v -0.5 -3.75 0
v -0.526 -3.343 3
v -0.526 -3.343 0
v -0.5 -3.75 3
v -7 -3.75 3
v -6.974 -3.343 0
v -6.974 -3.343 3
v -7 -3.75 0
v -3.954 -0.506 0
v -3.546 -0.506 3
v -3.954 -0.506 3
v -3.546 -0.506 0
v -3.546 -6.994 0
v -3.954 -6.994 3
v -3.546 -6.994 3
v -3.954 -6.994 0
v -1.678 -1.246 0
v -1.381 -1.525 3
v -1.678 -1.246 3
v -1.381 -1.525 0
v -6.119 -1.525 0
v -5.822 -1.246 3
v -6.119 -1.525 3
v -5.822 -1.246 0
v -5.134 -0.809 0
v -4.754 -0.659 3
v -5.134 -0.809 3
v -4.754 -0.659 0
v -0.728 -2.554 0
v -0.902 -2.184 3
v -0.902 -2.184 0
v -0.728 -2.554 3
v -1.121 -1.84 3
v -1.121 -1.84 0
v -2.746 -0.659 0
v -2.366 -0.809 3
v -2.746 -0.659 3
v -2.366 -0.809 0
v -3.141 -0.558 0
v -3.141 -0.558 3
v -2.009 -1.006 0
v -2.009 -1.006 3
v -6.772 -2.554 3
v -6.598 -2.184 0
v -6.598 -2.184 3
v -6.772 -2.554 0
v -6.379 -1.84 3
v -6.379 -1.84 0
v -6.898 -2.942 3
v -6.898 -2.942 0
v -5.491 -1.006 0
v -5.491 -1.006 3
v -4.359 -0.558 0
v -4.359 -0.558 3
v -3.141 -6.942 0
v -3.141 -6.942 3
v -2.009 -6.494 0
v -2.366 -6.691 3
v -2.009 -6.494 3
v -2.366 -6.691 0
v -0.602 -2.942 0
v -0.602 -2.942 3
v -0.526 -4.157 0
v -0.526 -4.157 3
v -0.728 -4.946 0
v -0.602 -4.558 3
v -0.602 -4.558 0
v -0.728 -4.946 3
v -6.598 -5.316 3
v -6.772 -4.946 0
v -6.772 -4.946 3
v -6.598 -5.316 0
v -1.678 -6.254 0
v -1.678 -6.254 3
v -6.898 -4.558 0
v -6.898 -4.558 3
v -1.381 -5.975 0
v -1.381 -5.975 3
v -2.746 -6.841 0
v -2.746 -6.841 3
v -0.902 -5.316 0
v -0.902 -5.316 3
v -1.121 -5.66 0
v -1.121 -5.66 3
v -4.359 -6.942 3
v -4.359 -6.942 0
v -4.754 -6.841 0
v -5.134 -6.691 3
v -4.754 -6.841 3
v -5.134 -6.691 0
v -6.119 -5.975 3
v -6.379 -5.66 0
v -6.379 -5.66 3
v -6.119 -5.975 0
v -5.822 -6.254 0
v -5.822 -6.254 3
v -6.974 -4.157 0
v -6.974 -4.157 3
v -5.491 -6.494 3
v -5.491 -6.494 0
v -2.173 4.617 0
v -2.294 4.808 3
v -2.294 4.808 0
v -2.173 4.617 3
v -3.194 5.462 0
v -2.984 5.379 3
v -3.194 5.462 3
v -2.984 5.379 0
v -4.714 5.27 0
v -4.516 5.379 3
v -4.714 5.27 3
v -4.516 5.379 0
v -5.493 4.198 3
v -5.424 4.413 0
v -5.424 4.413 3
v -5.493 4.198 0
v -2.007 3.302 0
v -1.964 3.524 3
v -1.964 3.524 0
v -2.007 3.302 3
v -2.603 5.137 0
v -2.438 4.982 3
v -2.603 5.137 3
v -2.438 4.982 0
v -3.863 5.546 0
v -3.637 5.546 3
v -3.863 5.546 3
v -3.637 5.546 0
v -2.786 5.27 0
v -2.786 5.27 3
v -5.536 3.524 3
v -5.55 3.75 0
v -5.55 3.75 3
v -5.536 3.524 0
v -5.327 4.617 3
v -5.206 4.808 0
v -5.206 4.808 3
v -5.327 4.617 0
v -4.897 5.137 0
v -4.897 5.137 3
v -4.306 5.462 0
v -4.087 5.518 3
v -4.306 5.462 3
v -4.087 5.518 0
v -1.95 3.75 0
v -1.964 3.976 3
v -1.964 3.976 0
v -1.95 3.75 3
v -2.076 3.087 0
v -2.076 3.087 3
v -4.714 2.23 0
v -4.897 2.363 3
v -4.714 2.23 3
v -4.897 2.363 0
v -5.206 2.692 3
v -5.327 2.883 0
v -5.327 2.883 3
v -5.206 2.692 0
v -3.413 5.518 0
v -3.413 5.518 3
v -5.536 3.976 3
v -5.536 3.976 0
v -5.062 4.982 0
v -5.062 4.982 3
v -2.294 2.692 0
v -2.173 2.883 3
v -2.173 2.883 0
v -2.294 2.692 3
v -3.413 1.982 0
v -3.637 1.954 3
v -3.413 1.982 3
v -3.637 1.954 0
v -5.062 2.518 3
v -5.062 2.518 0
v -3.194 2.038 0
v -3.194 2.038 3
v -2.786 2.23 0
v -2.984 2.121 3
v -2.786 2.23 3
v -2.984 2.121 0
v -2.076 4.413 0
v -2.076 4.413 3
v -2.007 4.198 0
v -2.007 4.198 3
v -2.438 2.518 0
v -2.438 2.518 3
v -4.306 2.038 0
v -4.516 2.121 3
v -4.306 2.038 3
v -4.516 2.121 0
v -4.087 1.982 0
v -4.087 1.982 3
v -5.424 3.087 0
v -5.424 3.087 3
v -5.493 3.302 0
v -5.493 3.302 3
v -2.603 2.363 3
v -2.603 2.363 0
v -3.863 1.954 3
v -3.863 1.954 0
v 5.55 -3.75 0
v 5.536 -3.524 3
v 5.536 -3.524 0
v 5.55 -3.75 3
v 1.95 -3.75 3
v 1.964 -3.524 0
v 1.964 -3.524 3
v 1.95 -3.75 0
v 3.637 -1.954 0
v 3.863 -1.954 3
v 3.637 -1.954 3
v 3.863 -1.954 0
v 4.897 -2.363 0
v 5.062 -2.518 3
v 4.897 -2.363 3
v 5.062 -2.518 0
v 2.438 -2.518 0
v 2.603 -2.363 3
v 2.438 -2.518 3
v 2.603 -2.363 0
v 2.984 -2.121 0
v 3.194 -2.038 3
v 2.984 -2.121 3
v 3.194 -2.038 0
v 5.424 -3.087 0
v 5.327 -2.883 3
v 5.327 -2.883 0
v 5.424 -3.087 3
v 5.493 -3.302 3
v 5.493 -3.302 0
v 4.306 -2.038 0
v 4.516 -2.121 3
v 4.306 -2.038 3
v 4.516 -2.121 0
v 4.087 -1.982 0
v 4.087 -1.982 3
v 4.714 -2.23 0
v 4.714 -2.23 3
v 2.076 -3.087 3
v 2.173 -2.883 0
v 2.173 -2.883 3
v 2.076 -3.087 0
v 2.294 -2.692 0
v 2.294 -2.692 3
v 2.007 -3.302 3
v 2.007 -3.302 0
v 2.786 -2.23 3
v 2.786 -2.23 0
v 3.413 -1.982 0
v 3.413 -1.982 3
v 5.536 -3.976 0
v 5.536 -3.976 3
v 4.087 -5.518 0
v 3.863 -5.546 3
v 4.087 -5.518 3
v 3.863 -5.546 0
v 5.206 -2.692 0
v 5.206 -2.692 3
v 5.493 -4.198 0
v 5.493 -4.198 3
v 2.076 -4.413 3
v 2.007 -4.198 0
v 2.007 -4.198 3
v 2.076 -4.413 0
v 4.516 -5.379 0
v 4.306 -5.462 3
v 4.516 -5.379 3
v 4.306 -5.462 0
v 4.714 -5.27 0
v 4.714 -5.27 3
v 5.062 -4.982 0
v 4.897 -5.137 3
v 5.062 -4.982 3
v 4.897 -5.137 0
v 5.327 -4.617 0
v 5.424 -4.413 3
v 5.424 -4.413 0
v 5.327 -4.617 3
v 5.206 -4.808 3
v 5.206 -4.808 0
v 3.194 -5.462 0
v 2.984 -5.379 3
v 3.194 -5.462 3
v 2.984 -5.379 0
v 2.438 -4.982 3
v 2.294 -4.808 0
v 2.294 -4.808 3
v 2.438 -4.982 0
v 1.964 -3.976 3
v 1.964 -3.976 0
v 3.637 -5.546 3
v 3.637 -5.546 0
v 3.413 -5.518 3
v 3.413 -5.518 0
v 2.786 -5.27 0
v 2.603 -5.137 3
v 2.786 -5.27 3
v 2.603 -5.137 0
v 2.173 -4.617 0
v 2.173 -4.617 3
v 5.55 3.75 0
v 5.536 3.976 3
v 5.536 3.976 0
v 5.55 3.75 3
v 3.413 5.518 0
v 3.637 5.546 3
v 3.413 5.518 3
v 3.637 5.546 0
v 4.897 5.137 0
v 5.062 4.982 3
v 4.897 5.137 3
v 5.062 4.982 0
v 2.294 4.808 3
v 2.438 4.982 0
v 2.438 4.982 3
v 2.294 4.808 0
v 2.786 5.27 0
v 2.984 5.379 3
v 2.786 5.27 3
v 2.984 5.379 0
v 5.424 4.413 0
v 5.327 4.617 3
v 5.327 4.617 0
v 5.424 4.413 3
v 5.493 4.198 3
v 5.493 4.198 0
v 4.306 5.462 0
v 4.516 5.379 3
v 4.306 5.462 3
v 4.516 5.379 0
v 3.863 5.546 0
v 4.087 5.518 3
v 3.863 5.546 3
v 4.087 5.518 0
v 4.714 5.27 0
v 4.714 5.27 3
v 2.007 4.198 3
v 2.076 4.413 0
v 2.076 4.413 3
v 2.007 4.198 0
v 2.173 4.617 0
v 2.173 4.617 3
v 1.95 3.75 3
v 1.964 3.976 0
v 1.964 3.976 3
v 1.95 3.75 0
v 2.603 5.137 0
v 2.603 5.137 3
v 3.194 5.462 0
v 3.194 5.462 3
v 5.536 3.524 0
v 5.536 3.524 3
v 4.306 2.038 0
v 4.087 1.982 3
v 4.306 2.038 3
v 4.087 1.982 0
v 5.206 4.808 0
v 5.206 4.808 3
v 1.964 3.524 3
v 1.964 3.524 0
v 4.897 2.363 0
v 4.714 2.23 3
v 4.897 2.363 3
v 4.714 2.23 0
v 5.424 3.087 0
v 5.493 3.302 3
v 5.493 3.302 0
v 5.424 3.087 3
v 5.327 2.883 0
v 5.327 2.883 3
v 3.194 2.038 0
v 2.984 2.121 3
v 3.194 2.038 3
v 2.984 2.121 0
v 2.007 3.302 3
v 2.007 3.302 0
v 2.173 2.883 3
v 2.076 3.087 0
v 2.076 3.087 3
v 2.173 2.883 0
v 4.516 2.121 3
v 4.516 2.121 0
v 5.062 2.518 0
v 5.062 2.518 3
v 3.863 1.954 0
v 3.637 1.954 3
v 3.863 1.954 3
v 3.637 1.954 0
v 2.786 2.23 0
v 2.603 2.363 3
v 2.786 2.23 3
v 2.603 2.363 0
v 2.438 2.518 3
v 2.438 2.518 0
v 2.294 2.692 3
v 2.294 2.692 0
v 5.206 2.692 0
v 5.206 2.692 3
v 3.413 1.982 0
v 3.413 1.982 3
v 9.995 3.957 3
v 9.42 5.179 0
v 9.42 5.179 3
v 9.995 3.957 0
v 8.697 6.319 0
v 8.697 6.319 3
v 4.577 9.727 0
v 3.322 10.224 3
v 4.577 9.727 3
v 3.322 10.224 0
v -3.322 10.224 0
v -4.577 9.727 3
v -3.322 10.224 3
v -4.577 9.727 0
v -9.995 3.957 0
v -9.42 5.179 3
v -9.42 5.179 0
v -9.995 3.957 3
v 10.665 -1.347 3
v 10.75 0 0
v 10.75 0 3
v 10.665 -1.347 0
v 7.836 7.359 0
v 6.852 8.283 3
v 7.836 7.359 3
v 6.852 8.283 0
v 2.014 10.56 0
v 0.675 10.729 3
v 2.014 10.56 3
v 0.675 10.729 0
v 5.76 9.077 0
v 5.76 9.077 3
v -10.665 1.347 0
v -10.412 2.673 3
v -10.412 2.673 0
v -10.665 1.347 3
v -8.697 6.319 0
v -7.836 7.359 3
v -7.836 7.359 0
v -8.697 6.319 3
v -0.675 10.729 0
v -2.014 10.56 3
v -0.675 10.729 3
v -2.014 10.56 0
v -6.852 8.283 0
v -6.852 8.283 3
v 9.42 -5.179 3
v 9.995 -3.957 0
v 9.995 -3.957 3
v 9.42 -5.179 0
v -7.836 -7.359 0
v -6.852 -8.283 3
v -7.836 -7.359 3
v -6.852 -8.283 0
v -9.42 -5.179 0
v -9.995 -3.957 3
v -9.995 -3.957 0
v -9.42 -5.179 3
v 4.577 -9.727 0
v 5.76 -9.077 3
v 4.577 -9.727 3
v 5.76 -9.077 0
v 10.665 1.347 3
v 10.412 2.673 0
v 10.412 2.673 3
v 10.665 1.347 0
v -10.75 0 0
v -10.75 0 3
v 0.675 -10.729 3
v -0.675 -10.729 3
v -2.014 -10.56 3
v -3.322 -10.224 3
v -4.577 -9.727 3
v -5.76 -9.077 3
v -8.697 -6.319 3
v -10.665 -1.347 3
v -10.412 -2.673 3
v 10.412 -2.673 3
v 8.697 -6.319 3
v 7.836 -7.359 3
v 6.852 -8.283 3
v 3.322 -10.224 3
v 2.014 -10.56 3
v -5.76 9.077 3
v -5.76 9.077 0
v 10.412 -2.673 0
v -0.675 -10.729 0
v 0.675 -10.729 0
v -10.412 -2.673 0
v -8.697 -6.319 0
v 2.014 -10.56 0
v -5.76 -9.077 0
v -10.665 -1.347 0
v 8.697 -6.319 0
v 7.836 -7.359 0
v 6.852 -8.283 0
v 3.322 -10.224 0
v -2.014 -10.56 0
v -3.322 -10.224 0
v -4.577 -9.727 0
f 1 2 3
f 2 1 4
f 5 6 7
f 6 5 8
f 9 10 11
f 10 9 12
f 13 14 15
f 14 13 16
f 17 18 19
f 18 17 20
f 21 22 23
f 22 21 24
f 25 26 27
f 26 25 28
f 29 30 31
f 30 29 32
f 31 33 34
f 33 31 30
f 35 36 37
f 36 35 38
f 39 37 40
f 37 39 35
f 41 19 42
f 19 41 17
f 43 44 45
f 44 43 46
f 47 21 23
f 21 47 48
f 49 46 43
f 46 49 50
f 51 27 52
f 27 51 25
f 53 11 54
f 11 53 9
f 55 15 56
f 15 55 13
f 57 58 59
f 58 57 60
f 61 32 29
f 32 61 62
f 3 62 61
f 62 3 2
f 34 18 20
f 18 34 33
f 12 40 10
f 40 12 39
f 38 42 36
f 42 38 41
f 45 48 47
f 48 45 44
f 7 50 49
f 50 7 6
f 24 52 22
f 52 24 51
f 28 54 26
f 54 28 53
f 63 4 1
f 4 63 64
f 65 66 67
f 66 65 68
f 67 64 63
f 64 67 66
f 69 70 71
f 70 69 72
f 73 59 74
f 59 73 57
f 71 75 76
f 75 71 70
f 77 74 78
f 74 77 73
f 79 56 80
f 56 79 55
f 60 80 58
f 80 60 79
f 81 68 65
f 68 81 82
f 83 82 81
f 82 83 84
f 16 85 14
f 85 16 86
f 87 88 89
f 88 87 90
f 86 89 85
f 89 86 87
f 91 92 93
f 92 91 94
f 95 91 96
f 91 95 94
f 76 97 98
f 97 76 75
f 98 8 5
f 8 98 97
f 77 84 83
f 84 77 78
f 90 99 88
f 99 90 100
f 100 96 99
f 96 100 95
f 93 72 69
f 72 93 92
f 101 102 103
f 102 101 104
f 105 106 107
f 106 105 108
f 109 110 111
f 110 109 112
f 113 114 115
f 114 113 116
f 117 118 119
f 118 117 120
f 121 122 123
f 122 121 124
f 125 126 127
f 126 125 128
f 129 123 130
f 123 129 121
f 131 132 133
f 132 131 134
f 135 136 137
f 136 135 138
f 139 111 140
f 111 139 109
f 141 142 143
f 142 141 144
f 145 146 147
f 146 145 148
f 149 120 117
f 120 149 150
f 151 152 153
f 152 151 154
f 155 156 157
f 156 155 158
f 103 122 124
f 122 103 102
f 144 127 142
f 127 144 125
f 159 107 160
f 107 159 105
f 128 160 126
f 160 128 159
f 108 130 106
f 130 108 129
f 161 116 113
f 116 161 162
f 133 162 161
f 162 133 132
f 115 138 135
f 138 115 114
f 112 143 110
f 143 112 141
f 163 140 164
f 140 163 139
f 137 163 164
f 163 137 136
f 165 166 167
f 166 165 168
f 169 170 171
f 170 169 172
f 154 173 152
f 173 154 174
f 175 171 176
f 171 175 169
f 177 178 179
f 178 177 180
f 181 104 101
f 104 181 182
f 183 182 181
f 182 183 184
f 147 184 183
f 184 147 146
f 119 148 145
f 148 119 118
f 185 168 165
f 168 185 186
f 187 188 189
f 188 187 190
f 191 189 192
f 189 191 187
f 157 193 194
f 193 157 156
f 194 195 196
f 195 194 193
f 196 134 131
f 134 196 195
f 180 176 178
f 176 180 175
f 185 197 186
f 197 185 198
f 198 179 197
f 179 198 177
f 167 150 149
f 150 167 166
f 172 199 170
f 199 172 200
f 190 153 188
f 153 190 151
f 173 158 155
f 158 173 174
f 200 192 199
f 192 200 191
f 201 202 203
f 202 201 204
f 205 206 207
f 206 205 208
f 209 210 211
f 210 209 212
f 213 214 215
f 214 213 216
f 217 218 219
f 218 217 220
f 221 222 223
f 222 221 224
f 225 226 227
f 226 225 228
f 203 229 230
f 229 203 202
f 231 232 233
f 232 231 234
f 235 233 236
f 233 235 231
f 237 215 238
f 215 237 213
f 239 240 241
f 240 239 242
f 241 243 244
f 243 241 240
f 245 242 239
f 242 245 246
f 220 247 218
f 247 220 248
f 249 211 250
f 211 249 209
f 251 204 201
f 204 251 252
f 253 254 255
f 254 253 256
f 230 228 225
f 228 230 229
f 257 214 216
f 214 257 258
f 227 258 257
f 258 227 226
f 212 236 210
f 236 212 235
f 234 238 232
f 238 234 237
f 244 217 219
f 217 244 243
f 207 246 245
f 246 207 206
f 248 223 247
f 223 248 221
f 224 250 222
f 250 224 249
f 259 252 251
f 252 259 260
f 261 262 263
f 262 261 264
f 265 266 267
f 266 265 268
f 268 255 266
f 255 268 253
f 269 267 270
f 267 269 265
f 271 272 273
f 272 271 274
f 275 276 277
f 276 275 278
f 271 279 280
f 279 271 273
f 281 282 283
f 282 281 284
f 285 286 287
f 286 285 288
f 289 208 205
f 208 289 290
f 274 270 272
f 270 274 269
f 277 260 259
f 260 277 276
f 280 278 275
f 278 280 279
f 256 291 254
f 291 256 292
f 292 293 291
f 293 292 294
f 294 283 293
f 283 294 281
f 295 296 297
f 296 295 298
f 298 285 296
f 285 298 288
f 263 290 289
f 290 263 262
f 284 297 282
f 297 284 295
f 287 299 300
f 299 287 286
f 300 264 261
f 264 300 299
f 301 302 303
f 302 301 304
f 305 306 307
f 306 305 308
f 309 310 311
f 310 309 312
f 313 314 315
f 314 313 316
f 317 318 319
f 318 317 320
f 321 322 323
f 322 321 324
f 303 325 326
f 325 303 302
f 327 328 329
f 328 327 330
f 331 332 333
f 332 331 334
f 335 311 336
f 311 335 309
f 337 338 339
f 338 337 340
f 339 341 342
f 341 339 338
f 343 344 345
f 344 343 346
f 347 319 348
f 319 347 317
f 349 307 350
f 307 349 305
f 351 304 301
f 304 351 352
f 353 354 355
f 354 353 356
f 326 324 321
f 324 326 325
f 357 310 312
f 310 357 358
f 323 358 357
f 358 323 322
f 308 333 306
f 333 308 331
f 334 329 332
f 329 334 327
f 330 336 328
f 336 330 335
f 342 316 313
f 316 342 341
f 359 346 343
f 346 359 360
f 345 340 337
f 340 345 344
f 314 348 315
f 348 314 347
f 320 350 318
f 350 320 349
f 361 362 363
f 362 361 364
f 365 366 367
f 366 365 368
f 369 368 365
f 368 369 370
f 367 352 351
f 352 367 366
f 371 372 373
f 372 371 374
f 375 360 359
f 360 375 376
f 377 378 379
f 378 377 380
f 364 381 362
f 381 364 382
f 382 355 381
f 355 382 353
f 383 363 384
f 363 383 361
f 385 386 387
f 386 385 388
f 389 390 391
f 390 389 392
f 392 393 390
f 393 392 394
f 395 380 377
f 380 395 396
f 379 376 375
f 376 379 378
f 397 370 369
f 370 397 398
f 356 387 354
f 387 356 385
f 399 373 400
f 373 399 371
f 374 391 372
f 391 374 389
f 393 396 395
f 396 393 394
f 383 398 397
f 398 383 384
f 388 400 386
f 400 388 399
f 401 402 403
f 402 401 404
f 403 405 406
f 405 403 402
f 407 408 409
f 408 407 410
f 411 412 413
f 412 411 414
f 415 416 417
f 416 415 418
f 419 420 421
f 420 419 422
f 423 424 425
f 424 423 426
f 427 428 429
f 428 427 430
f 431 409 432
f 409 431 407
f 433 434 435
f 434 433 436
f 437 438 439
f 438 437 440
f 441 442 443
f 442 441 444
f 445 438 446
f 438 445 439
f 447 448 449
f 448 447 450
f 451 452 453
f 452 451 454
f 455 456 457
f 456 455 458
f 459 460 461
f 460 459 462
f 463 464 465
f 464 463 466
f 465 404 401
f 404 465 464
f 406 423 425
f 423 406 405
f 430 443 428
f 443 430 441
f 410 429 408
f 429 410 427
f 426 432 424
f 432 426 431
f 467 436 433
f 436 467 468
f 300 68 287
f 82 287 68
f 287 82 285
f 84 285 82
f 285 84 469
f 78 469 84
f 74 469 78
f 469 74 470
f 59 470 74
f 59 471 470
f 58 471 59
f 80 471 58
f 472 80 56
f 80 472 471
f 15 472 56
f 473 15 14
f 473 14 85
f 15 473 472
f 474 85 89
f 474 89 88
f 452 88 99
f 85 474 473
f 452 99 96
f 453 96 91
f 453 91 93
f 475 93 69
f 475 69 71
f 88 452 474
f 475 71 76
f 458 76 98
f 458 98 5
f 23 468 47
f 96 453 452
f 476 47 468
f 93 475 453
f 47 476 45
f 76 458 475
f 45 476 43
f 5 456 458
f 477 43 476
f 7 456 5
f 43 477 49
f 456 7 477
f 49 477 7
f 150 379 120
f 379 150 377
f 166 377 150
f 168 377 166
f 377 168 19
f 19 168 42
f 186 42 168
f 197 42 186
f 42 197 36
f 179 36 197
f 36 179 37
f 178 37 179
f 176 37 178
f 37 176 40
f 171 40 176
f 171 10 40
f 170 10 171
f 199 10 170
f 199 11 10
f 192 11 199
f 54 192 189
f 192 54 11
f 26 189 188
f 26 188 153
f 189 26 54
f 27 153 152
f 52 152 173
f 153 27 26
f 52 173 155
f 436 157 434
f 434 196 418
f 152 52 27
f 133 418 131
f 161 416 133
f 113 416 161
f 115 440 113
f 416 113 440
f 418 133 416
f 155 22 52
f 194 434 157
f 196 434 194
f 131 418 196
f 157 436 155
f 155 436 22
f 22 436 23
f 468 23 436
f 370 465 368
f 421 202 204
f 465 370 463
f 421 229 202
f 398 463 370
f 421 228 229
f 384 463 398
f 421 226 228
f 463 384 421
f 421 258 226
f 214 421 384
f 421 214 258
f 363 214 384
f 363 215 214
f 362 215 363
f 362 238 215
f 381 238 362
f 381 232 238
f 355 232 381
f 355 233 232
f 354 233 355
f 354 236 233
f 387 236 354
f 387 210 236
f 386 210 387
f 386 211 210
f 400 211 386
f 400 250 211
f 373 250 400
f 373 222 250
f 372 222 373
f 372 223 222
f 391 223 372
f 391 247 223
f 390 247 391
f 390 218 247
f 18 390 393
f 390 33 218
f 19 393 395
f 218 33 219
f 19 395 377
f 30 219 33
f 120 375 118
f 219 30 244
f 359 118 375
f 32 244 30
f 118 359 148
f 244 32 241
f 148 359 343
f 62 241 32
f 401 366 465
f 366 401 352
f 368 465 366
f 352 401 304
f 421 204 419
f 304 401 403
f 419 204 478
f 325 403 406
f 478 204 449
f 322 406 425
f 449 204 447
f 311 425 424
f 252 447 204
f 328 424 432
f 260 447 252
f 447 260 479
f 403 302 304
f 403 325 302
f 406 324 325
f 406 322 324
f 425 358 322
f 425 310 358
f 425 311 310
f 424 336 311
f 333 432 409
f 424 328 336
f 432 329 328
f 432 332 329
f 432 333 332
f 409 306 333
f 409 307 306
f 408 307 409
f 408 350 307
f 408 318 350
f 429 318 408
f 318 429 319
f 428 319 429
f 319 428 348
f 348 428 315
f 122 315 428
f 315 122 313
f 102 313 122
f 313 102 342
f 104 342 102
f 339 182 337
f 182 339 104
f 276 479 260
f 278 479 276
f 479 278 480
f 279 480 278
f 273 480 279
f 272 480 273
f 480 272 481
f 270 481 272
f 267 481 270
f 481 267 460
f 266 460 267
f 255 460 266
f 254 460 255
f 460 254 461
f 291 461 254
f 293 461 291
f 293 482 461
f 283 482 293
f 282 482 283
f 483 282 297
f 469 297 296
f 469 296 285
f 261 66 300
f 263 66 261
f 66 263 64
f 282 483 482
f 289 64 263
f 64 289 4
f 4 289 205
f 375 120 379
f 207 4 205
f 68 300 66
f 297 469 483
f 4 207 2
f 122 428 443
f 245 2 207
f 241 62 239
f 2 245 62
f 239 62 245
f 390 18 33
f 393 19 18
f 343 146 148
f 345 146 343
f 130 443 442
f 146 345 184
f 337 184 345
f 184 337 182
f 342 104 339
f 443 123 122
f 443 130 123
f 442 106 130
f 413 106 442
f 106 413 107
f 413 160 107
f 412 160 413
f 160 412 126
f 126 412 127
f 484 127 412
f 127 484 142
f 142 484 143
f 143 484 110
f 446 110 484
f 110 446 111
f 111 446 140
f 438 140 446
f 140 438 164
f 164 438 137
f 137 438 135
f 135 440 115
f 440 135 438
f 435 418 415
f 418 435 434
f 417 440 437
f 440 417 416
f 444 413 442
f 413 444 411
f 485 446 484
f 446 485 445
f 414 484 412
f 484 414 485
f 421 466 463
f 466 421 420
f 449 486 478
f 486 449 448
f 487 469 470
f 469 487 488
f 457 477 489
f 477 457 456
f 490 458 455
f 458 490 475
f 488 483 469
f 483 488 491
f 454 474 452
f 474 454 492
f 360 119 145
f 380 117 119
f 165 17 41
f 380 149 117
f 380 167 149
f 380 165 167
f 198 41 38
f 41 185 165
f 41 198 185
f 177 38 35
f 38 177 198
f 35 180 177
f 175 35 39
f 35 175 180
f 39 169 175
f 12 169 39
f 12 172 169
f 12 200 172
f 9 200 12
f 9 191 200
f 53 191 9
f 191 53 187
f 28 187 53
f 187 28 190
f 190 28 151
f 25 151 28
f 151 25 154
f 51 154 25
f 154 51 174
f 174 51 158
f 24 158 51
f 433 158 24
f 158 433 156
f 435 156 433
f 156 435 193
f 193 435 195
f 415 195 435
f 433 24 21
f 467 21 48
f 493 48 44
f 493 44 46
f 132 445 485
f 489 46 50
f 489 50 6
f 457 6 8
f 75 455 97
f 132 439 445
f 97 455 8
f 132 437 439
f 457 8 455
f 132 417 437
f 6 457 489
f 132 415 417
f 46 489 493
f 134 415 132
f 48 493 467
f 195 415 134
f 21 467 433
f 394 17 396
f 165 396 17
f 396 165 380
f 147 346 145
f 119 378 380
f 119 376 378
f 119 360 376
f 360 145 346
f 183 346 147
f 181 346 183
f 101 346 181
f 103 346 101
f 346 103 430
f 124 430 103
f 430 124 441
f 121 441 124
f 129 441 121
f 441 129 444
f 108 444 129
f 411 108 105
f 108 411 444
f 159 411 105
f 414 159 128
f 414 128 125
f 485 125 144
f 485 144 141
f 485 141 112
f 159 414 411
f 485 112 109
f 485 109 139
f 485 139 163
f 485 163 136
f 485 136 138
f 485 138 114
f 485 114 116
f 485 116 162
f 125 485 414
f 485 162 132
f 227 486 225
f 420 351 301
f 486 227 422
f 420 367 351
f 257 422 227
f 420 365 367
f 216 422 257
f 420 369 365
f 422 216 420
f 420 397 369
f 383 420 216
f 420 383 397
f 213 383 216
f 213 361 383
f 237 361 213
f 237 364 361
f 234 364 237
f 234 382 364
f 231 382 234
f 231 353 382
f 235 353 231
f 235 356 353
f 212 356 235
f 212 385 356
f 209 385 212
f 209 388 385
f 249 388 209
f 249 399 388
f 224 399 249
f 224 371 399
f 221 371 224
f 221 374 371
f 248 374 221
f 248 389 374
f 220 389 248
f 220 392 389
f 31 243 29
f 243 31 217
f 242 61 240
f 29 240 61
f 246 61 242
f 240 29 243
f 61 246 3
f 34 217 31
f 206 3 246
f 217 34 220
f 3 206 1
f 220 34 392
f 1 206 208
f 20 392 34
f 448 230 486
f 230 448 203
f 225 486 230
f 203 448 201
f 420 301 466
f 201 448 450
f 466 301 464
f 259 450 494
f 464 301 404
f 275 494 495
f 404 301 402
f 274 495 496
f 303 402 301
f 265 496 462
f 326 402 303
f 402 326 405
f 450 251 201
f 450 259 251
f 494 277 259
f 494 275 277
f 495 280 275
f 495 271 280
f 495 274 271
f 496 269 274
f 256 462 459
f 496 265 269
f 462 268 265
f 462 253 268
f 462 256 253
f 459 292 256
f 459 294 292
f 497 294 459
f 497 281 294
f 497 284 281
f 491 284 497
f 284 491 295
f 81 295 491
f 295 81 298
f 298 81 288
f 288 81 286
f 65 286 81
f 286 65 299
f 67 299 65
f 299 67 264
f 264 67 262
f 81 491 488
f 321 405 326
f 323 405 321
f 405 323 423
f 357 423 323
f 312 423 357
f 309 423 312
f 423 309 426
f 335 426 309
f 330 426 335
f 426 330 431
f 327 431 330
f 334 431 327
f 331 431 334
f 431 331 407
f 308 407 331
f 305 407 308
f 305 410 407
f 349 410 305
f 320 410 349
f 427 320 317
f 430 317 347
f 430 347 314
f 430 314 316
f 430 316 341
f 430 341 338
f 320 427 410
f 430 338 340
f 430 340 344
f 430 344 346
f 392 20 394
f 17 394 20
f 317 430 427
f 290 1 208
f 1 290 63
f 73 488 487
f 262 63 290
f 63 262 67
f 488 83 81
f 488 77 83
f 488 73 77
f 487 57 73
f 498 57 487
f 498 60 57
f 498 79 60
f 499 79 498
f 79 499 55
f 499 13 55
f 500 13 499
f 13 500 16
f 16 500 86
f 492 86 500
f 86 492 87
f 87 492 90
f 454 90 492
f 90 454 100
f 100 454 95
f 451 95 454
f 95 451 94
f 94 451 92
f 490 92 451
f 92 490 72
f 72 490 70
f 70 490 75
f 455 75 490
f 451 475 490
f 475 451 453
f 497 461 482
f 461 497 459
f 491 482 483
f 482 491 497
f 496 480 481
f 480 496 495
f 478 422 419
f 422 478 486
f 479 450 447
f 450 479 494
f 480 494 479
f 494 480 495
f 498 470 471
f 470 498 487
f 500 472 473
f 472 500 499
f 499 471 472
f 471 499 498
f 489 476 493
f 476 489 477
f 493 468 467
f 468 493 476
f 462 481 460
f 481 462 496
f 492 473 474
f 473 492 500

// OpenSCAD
$fn = 50;


difference() {
	union() {
		*color(alpha = 1.0000000000, c = "gray") {
			translate(v = [0, 7, 0]) {
				linear_extrude(height = 1) {
					text(font = "Arial:style=Bold", halign = "center", size = 4.5000000000, text = "COMMENT circle main", valign = "center");
				}
			}
		}
		*color(alpha = 1.0000000000, c = "gray") {
			translate(v = [0, 14, 0]) {
				linear_extrude(height = 1.5000000000) {
					text(font = "Arial:style=Bold", halign = "center", size = 4.5000000000, text = "COMMENT description oobb_circle_shape_p_type_3_depth_1.5_diameter_3_thickness_1.5_width_1.5_height", valign = "center");
				}
			}
		}
		cylinder(h = 3, r = 10.7500000000);
	}
	union() {
		*color(alpha = 1.0000000000, c = "gray") {
			translate(v = [0, 7, 0]) {
				linear_extrude(height = 1) {
					text(font = "Arial:style=Bold", halign = "center", size = 4.5000000000, text = "COMMENT holes main", valign = "center");
				}
			}
		}
		*color(alpha = 1.0000000000, c = "gray") {
			translate(v = [0, 14, 0]) {
				linear_extrude(height = 1.5000000000) {
					text(font = "Arial:style=Bold", halign = "center", size = 4.5000000000, text = "COMMENT description oobb_holes_shape_n_type_1.5_diameter_3_thickness_1.5_width_1.5_height_true_both_holes_true_circle", valign = "center");
				}
			}
		}
		translate(v = [-3.7500000000, -3.7500000000, -50.0000000000]) {
			cylinder(h = 100, r = 3.2500000000);
		}
		translate(v = [-3.7500000000, -3.7500000000, -50.0000000000]) {
			cylinder(h = 100, r = 3.2500000000);
		}
		translate(v = [-3.7500000000, -3.7500000000, -50.0000000000]) {
			cylinder(h = 100, r = 3.2500000000);
		}
		translate(v = [-3.7500000000, -3.7500000000, -50.0000000000]) {
			cylinder(h = 100, r = 1.8000000000);
		}
		translate(v = [-3.7500000000, 3.7500000000, -50.0000000000]) {
			cylinder(h = 100, r = 1.8000000000);
		}
		translate(v = [3.7500000000, -3.7500000000, -50.0000000000]) {
			cylinder(h = 100, r = 1.8000000000);
		}
		translate(v = [3.7500000000, 3.7500000000, -50.0000000000]) {
			cylinder(h = 100, r = 1.8000000000);
		}
		translate(v = [-3.7500000000, -3.7500000000, -50.0000000000]) {
			cylinder(h = 100, r = 1.8000000000);
		}
		translate(v = [-3.7500000000, 3.7500000000, -50.0000000000]) {
			cylinder(h = 100, r = 1.8000000000);
		}
		translate(v = [3.7500000000, -3.7500000000, -50.0000000000]) {
			cylinder(h = 100, r = 1.8000000000);
		}
		translate(v = [3.7500000000, 3.7500000000, -50.0000000000]) {
			cylinder(h = 100, r = 1.8000000000);
		}
		translate(v = [-3.7500000000, -3.7500000000, -50.0000000000]) {
			cylinder(h = 100, r = 1.8000000000);
		}
		translate(v = [-3.7500000000, 3.7500000000, -50.0000000000]) {
			cylinder(h = 100, r = 1.8000000000);
		}
		translate(v = [3.7500000000, -3.7500000000, -50.0000000000]) {
			cylinder(h = 100, r = 1.8000000000);
		}
		translate(v = [3.7500000000, 3.7500000000, -50.0000000000]) {
			cylinder(h = 100, r = 1.8000000000);
		}
	}
}
